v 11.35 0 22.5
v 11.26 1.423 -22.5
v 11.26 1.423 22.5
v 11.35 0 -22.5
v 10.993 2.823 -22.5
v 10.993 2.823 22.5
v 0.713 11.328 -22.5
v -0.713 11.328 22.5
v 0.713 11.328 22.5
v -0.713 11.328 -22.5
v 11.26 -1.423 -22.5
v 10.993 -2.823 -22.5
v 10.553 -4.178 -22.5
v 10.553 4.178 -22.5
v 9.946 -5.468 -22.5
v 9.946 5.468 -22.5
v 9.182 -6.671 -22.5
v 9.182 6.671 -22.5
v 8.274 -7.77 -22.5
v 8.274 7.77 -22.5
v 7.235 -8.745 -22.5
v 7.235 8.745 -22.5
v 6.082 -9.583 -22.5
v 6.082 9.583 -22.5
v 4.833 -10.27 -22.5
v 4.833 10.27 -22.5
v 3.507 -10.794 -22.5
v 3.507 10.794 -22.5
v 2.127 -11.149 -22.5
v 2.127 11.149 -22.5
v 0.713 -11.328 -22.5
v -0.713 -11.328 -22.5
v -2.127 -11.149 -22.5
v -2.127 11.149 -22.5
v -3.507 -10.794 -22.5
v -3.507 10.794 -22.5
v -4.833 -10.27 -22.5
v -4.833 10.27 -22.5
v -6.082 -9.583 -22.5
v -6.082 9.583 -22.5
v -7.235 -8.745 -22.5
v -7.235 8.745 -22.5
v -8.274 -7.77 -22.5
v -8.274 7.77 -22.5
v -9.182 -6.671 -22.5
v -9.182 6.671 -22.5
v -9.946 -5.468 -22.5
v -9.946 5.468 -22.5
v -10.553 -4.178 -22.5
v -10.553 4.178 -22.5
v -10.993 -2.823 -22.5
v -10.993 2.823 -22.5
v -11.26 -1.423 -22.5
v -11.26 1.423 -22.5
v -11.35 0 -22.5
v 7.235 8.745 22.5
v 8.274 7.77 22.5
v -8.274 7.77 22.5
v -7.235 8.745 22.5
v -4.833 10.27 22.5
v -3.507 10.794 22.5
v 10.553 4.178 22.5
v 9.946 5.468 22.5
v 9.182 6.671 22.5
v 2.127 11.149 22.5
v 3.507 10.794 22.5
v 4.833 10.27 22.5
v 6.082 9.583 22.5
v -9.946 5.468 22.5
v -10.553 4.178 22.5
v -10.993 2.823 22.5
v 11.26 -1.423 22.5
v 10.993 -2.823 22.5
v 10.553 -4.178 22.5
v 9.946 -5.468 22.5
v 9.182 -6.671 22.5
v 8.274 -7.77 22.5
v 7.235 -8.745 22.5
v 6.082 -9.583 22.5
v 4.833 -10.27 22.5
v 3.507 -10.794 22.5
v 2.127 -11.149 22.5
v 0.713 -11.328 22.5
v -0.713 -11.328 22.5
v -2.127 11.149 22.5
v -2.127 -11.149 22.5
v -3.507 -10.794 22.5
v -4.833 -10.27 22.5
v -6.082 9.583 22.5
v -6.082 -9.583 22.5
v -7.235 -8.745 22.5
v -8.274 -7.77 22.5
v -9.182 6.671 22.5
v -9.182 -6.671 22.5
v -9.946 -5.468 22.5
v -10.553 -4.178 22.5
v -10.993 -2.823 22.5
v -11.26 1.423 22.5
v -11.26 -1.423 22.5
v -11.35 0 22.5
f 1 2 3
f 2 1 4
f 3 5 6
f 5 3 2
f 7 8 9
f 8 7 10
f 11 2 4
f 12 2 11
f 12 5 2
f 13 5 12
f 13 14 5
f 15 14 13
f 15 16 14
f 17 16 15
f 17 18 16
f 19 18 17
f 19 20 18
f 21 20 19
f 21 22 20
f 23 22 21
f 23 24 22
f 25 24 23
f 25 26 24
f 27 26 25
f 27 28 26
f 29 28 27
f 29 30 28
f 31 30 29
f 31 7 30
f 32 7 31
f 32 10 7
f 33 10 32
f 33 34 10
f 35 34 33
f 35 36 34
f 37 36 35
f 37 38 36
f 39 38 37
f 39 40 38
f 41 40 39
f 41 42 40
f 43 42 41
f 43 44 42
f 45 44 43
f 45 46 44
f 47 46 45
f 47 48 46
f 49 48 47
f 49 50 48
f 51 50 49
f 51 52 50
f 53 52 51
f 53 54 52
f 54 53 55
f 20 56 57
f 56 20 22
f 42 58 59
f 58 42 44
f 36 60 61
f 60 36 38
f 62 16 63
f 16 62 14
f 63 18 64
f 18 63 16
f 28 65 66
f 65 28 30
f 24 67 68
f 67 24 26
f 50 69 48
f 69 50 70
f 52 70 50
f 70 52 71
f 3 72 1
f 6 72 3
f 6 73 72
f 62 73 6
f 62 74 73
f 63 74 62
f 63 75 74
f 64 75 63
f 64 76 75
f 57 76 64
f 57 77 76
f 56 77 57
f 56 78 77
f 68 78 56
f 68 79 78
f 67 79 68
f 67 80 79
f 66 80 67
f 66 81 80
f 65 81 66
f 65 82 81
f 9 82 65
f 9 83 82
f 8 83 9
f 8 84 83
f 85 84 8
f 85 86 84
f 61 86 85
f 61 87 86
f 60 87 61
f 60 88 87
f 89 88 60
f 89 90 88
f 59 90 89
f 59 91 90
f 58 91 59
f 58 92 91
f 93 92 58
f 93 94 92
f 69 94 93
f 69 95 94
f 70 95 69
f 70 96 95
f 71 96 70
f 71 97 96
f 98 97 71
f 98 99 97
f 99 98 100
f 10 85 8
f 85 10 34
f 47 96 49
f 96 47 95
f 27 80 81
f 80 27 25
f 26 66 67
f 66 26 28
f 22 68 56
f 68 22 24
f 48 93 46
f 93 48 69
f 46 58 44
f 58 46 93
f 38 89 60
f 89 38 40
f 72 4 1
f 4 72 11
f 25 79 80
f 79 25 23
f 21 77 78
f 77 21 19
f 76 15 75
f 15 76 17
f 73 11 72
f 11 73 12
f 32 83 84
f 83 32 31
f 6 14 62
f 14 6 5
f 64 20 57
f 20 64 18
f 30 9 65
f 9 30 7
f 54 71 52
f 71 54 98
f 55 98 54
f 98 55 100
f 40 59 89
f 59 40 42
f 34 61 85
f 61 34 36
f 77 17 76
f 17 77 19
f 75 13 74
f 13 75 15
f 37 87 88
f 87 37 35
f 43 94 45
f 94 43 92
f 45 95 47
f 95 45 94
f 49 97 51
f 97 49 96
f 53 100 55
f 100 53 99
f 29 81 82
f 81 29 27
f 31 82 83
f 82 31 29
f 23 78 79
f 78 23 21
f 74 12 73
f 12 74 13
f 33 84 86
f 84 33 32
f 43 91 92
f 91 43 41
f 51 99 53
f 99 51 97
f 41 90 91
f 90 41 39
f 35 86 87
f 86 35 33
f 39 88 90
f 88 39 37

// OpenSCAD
$fn = 50;


difference() {
	union() {
		translate(v = [0, 0, -22.5000000000]) {
			cylinder(h = 45, r = 11.3500000000);
		}
	}
	union() {
		translate(v = [0, 0, -100.0000000000]) {
			cylinder(h = 200, r = 0);
		}
	}
}
